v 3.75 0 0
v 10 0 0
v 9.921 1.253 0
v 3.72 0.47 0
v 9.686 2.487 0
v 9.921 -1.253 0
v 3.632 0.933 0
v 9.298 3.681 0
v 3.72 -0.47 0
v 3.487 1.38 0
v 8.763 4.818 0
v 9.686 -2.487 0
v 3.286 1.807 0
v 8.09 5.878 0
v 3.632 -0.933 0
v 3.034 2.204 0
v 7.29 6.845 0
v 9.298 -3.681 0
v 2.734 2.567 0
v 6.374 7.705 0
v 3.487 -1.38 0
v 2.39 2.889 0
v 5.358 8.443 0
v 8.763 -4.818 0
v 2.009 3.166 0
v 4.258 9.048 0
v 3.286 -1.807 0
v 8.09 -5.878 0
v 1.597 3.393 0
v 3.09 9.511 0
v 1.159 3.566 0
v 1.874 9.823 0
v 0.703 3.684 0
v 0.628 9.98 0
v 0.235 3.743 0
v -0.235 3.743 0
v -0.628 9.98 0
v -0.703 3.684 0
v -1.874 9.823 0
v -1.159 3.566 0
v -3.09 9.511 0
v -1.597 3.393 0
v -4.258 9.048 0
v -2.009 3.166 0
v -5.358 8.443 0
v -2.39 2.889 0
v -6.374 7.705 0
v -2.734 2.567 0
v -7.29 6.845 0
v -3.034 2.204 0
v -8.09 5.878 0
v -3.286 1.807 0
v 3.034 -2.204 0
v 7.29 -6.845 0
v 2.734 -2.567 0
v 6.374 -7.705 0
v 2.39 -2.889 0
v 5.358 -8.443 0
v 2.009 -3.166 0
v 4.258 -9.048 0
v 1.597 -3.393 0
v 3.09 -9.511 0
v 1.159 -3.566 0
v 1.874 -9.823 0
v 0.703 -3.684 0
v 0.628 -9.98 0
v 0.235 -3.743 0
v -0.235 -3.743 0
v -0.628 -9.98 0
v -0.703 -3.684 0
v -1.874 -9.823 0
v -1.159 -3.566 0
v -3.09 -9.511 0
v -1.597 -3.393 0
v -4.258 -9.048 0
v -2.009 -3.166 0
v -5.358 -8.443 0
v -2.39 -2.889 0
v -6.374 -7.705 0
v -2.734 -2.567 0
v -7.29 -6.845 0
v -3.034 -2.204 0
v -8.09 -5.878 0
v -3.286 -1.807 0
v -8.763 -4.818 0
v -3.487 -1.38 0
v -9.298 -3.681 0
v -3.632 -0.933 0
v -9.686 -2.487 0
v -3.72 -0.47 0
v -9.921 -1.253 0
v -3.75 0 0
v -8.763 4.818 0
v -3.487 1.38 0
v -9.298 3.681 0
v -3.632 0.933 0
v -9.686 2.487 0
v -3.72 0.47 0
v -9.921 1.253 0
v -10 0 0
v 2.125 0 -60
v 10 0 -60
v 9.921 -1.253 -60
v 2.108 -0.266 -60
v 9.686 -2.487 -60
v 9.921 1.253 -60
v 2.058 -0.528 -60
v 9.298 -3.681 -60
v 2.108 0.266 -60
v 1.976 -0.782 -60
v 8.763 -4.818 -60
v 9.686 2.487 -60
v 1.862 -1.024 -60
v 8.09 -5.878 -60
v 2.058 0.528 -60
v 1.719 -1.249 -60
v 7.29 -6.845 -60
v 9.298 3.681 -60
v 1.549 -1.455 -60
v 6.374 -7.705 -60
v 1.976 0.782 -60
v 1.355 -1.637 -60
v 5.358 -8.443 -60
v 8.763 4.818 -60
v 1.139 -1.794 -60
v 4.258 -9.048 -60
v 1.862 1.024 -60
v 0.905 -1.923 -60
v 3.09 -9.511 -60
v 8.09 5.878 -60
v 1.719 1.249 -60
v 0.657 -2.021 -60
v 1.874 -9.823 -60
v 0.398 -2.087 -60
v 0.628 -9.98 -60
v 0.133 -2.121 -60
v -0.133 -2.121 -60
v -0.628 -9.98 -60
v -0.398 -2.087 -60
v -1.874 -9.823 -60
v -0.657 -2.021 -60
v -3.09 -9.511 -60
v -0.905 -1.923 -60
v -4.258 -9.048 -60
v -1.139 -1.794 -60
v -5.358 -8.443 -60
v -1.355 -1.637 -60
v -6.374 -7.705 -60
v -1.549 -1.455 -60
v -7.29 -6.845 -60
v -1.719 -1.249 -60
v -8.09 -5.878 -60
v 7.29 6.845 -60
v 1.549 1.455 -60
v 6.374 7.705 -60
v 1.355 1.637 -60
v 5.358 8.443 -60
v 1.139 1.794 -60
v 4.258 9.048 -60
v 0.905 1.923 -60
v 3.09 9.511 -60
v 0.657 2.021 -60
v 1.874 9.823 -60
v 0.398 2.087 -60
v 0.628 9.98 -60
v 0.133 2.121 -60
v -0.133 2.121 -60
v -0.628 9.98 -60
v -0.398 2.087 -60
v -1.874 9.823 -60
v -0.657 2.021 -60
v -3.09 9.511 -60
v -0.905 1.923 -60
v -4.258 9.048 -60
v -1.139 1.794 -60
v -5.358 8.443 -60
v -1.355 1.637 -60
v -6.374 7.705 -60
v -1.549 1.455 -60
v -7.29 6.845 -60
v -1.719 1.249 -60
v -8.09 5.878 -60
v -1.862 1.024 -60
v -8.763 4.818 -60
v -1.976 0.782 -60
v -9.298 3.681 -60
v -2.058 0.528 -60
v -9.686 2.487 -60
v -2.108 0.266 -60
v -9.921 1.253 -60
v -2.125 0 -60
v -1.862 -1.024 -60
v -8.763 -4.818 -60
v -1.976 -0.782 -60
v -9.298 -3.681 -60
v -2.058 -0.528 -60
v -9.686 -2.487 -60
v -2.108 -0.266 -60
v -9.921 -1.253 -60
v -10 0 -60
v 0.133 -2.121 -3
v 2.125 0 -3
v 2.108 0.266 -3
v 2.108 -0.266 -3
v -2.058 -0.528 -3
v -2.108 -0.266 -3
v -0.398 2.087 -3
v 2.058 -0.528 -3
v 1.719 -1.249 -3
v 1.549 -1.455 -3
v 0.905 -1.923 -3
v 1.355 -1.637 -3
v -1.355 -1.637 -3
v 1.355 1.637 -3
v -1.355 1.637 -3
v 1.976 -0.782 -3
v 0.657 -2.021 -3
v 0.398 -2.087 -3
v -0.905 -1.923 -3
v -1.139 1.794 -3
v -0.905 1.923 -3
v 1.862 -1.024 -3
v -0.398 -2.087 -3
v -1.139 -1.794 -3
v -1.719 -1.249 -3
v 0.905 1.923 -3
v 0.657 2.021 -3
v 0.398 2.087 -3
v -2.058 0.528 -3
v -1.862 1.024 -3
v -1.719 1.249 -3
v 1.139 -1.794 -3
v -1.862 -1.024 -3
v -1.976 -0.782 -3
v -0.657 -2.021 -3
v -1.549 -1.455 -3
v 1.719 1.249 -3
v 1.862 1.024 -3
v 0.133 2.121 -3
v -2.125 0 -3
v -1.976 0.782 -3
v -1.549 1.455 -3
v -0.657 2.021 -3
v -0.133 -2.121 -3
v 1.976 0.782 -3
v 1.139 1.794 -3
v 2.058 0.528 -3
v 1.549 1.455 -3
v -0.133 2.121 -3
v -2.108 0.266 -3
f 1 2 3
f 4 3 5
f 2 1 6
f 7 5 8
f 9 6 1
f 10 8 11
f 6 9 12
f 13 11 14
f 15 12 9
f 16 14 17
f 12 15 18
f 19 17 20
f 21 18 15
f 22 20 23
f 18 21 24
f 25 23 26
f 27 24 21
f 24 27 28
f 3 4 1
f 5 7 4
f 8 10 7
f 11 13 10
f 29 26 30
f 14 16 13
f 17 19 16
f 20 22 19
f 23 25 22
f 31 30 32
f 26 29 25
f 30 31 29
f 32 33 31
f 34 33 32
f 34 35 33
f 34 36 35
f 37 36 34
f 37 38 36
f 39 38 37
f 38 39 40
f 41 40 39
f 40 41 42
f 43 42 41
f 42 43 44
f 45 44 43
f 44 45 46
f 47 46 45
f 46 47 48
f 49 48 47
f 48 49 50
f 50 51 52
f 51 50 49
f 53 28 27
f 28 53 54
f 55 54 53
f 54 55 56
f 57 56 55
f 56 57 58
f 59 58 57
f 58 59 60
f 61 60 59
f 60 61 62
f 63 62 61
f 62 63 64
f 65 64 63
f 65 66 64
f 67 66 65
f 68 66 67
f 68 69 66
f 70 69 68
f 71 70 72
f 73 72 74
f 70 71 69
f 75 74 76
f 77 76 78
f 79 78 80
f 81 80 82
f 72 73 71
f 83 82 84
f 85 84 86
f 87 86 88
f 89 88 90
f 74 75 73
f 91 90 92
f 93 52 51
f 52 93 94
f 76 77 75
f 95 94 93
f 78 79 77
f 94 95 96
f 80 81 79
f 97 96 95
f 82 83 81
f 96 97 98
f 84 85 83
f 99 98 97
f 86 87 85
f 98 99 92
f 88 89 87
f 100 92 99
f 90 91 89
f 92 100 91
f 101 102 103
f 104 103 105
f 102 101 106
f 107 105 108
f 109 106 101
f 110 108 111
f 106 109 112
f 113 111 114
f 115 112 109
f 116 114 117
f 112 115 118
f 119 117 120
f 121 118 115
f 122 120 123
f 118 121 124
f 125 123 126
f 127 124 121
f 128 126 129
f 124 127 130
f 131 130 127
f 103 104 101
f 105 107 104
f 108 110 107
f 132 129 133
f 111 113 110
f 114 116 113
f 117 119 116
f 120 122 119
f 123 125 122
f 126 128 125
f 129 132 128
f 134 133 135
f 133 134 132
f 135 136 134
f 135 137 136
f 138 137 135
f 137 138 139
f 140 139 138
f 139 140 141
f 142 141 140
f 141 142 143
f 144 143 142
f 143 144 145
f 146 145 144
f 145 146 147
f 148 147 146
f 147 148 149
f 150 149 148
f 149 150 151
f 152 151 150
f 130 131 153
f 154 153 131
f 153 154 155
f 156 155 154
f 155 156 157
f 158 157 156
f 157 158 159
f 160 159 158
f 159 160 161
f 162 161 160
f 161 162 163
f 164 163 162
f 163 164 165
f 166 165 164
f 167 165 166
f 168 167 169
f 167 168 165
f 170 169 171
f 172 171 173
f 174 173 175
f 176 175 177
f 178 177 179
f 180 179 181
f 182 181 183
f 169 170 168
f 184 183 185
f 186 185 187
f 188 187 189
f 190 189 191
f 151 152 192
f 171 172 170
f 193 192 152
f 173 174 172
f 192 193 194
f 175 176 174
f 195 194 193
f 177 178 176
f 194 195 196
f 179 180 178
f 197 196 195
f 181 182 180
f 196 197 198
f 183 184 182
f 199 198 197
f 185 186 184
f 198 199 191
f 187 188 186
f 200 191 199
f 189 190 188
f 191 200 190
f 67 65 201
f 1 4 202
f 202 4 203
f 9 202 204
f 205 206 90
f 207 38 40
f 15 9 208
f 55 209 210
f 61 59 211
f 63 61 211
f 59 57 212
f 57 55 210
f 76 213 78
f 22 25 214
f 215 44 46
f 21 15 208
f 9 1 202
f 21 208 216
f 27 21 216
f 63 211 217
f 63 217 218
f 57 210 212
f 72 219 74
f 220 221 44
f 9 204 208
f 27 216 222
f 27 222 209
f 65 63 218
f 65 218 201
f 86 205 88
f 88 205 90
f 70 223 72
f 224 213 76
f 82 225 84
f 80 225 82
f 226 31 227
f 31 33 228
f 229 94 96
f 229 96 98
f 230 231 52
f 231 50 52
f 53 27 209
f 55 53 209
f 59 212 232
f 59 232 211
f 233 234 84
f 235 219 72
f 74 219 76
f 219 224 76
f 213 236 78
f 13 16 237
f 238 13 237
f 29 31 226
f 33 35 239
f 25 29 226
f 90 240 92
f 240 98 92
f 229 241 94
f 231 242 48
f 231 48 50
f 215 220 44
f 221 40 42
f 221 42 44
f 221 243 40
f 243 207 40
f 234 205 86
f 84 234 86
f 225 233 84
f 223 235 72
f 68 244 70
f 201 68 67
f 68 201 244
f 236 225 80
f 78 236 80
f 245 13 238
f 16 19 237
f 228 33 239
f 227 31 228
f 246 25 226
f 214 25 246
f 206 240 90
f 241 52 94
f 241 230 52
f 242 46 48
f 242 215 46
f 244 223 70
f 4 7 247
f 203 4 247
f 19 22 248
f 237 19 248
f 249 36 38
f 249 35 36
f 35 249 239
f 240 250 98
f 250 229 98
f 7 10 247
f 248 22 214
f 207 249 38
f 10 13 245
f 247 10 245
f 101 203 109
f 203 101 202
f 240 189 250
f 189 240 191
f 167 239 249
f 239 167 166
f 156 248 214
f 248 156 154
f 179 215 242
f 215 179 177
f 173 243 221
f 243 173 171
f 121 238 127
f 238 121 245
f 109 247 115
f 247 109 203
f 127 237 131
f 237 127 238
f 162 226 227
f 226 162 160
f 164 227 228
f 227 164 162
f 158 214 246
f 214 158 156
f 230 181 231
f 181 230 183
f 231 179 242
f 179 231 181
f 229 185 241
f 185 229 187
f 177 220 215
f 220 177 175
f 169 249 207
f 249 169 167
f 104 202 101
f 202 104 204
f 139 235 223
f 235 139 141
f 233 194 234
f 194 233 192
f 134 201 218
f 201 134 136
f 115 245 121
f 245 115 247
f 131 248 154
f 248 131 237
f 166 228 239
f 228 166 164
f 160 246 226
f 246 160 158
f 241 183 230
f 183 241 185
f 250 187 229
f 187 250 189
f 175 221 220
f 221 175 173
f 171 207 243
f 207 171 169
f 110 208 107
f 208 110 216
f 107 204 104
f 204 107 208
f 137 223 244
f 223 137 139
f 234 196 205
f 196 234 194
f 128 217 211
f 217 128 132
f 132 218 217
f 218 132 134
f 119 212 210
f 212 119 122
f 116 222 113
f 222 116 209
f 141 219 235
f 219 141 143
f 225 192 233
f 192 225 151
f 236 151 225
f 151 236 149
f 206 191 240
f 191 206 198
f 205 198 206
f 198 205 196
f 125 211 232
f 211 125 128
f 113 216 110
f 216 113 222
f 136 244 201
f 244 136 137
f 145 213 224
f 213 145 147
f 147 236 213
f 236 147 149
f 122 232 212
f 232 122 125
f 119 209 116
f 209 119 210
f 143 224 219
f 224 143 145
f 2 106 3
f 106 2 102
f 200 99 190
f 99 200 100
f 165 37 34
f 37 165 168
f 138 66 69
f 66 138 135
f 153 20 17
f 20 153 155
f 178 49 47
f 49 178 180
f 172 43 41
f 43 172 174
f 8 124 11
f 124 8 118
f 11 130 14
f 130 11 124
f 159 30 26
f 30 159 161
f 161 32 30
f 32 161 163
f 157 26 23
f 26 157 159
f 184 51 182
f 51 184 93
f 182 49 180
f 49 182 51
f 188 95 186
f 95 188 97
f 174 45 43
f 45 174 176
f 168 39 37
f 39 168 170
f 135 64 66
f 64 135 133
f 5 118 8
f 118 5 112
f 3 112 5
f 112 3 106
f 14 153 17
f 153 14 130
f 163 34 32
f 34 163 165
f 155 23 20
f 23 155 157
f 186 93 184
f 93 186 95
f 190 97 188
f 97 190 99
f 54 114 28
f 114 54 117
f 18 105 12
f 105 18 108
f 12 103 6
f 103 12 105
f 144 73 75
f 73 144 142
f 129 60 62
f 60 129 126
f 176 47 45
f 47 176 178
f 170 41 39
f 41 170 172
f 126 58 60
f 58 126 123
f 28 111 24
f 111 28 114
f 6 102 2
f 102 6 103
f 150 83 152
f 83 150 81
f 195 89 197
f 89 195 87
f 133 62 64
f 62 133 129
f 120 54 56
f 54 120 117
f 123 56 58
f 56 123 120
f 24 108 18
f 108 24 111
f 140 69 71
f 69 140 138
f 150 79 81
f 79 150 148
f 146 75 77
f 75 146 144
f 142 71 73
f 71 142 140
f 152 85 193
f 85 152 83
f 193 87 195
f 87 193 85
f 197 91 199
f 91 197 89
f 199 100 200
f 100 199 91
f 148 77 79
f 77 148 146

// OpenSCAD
$fn = 50;


difference() {
	union() {
		translate(v = [0, 0, -60.0000000000]) {
			cylinder(h = 60, r = 10.0000000000);
		}
		cylinder(h = 0, r = 13.0000000000);
	}
	union() {
		translate(v = [0, 0, 0]) {
			rotate(a = [0, 0, 0]) {
				difference() {
					union() {
						#translate(v = [0, 0, -60.0000000000]) {
							cylinder(h = 60, r = 2.0000000000);
						}
						#translate(v = [0, 0, -3]) {
							cylinder(h = 3, r1 = 2.1250000000, r2 = 3.7500000000);
						}
						#translate(v = [0, 0, -60.0000000000]) {
							cylinder(h = 60, r = 2.1250000000);
						}
						#translate(v = [0, 0, -60.0000000000]) {
							cylinder(h = 60, r = 2.0000000000);
						}
					}
					union();
				}
			}
		}
	}
}
